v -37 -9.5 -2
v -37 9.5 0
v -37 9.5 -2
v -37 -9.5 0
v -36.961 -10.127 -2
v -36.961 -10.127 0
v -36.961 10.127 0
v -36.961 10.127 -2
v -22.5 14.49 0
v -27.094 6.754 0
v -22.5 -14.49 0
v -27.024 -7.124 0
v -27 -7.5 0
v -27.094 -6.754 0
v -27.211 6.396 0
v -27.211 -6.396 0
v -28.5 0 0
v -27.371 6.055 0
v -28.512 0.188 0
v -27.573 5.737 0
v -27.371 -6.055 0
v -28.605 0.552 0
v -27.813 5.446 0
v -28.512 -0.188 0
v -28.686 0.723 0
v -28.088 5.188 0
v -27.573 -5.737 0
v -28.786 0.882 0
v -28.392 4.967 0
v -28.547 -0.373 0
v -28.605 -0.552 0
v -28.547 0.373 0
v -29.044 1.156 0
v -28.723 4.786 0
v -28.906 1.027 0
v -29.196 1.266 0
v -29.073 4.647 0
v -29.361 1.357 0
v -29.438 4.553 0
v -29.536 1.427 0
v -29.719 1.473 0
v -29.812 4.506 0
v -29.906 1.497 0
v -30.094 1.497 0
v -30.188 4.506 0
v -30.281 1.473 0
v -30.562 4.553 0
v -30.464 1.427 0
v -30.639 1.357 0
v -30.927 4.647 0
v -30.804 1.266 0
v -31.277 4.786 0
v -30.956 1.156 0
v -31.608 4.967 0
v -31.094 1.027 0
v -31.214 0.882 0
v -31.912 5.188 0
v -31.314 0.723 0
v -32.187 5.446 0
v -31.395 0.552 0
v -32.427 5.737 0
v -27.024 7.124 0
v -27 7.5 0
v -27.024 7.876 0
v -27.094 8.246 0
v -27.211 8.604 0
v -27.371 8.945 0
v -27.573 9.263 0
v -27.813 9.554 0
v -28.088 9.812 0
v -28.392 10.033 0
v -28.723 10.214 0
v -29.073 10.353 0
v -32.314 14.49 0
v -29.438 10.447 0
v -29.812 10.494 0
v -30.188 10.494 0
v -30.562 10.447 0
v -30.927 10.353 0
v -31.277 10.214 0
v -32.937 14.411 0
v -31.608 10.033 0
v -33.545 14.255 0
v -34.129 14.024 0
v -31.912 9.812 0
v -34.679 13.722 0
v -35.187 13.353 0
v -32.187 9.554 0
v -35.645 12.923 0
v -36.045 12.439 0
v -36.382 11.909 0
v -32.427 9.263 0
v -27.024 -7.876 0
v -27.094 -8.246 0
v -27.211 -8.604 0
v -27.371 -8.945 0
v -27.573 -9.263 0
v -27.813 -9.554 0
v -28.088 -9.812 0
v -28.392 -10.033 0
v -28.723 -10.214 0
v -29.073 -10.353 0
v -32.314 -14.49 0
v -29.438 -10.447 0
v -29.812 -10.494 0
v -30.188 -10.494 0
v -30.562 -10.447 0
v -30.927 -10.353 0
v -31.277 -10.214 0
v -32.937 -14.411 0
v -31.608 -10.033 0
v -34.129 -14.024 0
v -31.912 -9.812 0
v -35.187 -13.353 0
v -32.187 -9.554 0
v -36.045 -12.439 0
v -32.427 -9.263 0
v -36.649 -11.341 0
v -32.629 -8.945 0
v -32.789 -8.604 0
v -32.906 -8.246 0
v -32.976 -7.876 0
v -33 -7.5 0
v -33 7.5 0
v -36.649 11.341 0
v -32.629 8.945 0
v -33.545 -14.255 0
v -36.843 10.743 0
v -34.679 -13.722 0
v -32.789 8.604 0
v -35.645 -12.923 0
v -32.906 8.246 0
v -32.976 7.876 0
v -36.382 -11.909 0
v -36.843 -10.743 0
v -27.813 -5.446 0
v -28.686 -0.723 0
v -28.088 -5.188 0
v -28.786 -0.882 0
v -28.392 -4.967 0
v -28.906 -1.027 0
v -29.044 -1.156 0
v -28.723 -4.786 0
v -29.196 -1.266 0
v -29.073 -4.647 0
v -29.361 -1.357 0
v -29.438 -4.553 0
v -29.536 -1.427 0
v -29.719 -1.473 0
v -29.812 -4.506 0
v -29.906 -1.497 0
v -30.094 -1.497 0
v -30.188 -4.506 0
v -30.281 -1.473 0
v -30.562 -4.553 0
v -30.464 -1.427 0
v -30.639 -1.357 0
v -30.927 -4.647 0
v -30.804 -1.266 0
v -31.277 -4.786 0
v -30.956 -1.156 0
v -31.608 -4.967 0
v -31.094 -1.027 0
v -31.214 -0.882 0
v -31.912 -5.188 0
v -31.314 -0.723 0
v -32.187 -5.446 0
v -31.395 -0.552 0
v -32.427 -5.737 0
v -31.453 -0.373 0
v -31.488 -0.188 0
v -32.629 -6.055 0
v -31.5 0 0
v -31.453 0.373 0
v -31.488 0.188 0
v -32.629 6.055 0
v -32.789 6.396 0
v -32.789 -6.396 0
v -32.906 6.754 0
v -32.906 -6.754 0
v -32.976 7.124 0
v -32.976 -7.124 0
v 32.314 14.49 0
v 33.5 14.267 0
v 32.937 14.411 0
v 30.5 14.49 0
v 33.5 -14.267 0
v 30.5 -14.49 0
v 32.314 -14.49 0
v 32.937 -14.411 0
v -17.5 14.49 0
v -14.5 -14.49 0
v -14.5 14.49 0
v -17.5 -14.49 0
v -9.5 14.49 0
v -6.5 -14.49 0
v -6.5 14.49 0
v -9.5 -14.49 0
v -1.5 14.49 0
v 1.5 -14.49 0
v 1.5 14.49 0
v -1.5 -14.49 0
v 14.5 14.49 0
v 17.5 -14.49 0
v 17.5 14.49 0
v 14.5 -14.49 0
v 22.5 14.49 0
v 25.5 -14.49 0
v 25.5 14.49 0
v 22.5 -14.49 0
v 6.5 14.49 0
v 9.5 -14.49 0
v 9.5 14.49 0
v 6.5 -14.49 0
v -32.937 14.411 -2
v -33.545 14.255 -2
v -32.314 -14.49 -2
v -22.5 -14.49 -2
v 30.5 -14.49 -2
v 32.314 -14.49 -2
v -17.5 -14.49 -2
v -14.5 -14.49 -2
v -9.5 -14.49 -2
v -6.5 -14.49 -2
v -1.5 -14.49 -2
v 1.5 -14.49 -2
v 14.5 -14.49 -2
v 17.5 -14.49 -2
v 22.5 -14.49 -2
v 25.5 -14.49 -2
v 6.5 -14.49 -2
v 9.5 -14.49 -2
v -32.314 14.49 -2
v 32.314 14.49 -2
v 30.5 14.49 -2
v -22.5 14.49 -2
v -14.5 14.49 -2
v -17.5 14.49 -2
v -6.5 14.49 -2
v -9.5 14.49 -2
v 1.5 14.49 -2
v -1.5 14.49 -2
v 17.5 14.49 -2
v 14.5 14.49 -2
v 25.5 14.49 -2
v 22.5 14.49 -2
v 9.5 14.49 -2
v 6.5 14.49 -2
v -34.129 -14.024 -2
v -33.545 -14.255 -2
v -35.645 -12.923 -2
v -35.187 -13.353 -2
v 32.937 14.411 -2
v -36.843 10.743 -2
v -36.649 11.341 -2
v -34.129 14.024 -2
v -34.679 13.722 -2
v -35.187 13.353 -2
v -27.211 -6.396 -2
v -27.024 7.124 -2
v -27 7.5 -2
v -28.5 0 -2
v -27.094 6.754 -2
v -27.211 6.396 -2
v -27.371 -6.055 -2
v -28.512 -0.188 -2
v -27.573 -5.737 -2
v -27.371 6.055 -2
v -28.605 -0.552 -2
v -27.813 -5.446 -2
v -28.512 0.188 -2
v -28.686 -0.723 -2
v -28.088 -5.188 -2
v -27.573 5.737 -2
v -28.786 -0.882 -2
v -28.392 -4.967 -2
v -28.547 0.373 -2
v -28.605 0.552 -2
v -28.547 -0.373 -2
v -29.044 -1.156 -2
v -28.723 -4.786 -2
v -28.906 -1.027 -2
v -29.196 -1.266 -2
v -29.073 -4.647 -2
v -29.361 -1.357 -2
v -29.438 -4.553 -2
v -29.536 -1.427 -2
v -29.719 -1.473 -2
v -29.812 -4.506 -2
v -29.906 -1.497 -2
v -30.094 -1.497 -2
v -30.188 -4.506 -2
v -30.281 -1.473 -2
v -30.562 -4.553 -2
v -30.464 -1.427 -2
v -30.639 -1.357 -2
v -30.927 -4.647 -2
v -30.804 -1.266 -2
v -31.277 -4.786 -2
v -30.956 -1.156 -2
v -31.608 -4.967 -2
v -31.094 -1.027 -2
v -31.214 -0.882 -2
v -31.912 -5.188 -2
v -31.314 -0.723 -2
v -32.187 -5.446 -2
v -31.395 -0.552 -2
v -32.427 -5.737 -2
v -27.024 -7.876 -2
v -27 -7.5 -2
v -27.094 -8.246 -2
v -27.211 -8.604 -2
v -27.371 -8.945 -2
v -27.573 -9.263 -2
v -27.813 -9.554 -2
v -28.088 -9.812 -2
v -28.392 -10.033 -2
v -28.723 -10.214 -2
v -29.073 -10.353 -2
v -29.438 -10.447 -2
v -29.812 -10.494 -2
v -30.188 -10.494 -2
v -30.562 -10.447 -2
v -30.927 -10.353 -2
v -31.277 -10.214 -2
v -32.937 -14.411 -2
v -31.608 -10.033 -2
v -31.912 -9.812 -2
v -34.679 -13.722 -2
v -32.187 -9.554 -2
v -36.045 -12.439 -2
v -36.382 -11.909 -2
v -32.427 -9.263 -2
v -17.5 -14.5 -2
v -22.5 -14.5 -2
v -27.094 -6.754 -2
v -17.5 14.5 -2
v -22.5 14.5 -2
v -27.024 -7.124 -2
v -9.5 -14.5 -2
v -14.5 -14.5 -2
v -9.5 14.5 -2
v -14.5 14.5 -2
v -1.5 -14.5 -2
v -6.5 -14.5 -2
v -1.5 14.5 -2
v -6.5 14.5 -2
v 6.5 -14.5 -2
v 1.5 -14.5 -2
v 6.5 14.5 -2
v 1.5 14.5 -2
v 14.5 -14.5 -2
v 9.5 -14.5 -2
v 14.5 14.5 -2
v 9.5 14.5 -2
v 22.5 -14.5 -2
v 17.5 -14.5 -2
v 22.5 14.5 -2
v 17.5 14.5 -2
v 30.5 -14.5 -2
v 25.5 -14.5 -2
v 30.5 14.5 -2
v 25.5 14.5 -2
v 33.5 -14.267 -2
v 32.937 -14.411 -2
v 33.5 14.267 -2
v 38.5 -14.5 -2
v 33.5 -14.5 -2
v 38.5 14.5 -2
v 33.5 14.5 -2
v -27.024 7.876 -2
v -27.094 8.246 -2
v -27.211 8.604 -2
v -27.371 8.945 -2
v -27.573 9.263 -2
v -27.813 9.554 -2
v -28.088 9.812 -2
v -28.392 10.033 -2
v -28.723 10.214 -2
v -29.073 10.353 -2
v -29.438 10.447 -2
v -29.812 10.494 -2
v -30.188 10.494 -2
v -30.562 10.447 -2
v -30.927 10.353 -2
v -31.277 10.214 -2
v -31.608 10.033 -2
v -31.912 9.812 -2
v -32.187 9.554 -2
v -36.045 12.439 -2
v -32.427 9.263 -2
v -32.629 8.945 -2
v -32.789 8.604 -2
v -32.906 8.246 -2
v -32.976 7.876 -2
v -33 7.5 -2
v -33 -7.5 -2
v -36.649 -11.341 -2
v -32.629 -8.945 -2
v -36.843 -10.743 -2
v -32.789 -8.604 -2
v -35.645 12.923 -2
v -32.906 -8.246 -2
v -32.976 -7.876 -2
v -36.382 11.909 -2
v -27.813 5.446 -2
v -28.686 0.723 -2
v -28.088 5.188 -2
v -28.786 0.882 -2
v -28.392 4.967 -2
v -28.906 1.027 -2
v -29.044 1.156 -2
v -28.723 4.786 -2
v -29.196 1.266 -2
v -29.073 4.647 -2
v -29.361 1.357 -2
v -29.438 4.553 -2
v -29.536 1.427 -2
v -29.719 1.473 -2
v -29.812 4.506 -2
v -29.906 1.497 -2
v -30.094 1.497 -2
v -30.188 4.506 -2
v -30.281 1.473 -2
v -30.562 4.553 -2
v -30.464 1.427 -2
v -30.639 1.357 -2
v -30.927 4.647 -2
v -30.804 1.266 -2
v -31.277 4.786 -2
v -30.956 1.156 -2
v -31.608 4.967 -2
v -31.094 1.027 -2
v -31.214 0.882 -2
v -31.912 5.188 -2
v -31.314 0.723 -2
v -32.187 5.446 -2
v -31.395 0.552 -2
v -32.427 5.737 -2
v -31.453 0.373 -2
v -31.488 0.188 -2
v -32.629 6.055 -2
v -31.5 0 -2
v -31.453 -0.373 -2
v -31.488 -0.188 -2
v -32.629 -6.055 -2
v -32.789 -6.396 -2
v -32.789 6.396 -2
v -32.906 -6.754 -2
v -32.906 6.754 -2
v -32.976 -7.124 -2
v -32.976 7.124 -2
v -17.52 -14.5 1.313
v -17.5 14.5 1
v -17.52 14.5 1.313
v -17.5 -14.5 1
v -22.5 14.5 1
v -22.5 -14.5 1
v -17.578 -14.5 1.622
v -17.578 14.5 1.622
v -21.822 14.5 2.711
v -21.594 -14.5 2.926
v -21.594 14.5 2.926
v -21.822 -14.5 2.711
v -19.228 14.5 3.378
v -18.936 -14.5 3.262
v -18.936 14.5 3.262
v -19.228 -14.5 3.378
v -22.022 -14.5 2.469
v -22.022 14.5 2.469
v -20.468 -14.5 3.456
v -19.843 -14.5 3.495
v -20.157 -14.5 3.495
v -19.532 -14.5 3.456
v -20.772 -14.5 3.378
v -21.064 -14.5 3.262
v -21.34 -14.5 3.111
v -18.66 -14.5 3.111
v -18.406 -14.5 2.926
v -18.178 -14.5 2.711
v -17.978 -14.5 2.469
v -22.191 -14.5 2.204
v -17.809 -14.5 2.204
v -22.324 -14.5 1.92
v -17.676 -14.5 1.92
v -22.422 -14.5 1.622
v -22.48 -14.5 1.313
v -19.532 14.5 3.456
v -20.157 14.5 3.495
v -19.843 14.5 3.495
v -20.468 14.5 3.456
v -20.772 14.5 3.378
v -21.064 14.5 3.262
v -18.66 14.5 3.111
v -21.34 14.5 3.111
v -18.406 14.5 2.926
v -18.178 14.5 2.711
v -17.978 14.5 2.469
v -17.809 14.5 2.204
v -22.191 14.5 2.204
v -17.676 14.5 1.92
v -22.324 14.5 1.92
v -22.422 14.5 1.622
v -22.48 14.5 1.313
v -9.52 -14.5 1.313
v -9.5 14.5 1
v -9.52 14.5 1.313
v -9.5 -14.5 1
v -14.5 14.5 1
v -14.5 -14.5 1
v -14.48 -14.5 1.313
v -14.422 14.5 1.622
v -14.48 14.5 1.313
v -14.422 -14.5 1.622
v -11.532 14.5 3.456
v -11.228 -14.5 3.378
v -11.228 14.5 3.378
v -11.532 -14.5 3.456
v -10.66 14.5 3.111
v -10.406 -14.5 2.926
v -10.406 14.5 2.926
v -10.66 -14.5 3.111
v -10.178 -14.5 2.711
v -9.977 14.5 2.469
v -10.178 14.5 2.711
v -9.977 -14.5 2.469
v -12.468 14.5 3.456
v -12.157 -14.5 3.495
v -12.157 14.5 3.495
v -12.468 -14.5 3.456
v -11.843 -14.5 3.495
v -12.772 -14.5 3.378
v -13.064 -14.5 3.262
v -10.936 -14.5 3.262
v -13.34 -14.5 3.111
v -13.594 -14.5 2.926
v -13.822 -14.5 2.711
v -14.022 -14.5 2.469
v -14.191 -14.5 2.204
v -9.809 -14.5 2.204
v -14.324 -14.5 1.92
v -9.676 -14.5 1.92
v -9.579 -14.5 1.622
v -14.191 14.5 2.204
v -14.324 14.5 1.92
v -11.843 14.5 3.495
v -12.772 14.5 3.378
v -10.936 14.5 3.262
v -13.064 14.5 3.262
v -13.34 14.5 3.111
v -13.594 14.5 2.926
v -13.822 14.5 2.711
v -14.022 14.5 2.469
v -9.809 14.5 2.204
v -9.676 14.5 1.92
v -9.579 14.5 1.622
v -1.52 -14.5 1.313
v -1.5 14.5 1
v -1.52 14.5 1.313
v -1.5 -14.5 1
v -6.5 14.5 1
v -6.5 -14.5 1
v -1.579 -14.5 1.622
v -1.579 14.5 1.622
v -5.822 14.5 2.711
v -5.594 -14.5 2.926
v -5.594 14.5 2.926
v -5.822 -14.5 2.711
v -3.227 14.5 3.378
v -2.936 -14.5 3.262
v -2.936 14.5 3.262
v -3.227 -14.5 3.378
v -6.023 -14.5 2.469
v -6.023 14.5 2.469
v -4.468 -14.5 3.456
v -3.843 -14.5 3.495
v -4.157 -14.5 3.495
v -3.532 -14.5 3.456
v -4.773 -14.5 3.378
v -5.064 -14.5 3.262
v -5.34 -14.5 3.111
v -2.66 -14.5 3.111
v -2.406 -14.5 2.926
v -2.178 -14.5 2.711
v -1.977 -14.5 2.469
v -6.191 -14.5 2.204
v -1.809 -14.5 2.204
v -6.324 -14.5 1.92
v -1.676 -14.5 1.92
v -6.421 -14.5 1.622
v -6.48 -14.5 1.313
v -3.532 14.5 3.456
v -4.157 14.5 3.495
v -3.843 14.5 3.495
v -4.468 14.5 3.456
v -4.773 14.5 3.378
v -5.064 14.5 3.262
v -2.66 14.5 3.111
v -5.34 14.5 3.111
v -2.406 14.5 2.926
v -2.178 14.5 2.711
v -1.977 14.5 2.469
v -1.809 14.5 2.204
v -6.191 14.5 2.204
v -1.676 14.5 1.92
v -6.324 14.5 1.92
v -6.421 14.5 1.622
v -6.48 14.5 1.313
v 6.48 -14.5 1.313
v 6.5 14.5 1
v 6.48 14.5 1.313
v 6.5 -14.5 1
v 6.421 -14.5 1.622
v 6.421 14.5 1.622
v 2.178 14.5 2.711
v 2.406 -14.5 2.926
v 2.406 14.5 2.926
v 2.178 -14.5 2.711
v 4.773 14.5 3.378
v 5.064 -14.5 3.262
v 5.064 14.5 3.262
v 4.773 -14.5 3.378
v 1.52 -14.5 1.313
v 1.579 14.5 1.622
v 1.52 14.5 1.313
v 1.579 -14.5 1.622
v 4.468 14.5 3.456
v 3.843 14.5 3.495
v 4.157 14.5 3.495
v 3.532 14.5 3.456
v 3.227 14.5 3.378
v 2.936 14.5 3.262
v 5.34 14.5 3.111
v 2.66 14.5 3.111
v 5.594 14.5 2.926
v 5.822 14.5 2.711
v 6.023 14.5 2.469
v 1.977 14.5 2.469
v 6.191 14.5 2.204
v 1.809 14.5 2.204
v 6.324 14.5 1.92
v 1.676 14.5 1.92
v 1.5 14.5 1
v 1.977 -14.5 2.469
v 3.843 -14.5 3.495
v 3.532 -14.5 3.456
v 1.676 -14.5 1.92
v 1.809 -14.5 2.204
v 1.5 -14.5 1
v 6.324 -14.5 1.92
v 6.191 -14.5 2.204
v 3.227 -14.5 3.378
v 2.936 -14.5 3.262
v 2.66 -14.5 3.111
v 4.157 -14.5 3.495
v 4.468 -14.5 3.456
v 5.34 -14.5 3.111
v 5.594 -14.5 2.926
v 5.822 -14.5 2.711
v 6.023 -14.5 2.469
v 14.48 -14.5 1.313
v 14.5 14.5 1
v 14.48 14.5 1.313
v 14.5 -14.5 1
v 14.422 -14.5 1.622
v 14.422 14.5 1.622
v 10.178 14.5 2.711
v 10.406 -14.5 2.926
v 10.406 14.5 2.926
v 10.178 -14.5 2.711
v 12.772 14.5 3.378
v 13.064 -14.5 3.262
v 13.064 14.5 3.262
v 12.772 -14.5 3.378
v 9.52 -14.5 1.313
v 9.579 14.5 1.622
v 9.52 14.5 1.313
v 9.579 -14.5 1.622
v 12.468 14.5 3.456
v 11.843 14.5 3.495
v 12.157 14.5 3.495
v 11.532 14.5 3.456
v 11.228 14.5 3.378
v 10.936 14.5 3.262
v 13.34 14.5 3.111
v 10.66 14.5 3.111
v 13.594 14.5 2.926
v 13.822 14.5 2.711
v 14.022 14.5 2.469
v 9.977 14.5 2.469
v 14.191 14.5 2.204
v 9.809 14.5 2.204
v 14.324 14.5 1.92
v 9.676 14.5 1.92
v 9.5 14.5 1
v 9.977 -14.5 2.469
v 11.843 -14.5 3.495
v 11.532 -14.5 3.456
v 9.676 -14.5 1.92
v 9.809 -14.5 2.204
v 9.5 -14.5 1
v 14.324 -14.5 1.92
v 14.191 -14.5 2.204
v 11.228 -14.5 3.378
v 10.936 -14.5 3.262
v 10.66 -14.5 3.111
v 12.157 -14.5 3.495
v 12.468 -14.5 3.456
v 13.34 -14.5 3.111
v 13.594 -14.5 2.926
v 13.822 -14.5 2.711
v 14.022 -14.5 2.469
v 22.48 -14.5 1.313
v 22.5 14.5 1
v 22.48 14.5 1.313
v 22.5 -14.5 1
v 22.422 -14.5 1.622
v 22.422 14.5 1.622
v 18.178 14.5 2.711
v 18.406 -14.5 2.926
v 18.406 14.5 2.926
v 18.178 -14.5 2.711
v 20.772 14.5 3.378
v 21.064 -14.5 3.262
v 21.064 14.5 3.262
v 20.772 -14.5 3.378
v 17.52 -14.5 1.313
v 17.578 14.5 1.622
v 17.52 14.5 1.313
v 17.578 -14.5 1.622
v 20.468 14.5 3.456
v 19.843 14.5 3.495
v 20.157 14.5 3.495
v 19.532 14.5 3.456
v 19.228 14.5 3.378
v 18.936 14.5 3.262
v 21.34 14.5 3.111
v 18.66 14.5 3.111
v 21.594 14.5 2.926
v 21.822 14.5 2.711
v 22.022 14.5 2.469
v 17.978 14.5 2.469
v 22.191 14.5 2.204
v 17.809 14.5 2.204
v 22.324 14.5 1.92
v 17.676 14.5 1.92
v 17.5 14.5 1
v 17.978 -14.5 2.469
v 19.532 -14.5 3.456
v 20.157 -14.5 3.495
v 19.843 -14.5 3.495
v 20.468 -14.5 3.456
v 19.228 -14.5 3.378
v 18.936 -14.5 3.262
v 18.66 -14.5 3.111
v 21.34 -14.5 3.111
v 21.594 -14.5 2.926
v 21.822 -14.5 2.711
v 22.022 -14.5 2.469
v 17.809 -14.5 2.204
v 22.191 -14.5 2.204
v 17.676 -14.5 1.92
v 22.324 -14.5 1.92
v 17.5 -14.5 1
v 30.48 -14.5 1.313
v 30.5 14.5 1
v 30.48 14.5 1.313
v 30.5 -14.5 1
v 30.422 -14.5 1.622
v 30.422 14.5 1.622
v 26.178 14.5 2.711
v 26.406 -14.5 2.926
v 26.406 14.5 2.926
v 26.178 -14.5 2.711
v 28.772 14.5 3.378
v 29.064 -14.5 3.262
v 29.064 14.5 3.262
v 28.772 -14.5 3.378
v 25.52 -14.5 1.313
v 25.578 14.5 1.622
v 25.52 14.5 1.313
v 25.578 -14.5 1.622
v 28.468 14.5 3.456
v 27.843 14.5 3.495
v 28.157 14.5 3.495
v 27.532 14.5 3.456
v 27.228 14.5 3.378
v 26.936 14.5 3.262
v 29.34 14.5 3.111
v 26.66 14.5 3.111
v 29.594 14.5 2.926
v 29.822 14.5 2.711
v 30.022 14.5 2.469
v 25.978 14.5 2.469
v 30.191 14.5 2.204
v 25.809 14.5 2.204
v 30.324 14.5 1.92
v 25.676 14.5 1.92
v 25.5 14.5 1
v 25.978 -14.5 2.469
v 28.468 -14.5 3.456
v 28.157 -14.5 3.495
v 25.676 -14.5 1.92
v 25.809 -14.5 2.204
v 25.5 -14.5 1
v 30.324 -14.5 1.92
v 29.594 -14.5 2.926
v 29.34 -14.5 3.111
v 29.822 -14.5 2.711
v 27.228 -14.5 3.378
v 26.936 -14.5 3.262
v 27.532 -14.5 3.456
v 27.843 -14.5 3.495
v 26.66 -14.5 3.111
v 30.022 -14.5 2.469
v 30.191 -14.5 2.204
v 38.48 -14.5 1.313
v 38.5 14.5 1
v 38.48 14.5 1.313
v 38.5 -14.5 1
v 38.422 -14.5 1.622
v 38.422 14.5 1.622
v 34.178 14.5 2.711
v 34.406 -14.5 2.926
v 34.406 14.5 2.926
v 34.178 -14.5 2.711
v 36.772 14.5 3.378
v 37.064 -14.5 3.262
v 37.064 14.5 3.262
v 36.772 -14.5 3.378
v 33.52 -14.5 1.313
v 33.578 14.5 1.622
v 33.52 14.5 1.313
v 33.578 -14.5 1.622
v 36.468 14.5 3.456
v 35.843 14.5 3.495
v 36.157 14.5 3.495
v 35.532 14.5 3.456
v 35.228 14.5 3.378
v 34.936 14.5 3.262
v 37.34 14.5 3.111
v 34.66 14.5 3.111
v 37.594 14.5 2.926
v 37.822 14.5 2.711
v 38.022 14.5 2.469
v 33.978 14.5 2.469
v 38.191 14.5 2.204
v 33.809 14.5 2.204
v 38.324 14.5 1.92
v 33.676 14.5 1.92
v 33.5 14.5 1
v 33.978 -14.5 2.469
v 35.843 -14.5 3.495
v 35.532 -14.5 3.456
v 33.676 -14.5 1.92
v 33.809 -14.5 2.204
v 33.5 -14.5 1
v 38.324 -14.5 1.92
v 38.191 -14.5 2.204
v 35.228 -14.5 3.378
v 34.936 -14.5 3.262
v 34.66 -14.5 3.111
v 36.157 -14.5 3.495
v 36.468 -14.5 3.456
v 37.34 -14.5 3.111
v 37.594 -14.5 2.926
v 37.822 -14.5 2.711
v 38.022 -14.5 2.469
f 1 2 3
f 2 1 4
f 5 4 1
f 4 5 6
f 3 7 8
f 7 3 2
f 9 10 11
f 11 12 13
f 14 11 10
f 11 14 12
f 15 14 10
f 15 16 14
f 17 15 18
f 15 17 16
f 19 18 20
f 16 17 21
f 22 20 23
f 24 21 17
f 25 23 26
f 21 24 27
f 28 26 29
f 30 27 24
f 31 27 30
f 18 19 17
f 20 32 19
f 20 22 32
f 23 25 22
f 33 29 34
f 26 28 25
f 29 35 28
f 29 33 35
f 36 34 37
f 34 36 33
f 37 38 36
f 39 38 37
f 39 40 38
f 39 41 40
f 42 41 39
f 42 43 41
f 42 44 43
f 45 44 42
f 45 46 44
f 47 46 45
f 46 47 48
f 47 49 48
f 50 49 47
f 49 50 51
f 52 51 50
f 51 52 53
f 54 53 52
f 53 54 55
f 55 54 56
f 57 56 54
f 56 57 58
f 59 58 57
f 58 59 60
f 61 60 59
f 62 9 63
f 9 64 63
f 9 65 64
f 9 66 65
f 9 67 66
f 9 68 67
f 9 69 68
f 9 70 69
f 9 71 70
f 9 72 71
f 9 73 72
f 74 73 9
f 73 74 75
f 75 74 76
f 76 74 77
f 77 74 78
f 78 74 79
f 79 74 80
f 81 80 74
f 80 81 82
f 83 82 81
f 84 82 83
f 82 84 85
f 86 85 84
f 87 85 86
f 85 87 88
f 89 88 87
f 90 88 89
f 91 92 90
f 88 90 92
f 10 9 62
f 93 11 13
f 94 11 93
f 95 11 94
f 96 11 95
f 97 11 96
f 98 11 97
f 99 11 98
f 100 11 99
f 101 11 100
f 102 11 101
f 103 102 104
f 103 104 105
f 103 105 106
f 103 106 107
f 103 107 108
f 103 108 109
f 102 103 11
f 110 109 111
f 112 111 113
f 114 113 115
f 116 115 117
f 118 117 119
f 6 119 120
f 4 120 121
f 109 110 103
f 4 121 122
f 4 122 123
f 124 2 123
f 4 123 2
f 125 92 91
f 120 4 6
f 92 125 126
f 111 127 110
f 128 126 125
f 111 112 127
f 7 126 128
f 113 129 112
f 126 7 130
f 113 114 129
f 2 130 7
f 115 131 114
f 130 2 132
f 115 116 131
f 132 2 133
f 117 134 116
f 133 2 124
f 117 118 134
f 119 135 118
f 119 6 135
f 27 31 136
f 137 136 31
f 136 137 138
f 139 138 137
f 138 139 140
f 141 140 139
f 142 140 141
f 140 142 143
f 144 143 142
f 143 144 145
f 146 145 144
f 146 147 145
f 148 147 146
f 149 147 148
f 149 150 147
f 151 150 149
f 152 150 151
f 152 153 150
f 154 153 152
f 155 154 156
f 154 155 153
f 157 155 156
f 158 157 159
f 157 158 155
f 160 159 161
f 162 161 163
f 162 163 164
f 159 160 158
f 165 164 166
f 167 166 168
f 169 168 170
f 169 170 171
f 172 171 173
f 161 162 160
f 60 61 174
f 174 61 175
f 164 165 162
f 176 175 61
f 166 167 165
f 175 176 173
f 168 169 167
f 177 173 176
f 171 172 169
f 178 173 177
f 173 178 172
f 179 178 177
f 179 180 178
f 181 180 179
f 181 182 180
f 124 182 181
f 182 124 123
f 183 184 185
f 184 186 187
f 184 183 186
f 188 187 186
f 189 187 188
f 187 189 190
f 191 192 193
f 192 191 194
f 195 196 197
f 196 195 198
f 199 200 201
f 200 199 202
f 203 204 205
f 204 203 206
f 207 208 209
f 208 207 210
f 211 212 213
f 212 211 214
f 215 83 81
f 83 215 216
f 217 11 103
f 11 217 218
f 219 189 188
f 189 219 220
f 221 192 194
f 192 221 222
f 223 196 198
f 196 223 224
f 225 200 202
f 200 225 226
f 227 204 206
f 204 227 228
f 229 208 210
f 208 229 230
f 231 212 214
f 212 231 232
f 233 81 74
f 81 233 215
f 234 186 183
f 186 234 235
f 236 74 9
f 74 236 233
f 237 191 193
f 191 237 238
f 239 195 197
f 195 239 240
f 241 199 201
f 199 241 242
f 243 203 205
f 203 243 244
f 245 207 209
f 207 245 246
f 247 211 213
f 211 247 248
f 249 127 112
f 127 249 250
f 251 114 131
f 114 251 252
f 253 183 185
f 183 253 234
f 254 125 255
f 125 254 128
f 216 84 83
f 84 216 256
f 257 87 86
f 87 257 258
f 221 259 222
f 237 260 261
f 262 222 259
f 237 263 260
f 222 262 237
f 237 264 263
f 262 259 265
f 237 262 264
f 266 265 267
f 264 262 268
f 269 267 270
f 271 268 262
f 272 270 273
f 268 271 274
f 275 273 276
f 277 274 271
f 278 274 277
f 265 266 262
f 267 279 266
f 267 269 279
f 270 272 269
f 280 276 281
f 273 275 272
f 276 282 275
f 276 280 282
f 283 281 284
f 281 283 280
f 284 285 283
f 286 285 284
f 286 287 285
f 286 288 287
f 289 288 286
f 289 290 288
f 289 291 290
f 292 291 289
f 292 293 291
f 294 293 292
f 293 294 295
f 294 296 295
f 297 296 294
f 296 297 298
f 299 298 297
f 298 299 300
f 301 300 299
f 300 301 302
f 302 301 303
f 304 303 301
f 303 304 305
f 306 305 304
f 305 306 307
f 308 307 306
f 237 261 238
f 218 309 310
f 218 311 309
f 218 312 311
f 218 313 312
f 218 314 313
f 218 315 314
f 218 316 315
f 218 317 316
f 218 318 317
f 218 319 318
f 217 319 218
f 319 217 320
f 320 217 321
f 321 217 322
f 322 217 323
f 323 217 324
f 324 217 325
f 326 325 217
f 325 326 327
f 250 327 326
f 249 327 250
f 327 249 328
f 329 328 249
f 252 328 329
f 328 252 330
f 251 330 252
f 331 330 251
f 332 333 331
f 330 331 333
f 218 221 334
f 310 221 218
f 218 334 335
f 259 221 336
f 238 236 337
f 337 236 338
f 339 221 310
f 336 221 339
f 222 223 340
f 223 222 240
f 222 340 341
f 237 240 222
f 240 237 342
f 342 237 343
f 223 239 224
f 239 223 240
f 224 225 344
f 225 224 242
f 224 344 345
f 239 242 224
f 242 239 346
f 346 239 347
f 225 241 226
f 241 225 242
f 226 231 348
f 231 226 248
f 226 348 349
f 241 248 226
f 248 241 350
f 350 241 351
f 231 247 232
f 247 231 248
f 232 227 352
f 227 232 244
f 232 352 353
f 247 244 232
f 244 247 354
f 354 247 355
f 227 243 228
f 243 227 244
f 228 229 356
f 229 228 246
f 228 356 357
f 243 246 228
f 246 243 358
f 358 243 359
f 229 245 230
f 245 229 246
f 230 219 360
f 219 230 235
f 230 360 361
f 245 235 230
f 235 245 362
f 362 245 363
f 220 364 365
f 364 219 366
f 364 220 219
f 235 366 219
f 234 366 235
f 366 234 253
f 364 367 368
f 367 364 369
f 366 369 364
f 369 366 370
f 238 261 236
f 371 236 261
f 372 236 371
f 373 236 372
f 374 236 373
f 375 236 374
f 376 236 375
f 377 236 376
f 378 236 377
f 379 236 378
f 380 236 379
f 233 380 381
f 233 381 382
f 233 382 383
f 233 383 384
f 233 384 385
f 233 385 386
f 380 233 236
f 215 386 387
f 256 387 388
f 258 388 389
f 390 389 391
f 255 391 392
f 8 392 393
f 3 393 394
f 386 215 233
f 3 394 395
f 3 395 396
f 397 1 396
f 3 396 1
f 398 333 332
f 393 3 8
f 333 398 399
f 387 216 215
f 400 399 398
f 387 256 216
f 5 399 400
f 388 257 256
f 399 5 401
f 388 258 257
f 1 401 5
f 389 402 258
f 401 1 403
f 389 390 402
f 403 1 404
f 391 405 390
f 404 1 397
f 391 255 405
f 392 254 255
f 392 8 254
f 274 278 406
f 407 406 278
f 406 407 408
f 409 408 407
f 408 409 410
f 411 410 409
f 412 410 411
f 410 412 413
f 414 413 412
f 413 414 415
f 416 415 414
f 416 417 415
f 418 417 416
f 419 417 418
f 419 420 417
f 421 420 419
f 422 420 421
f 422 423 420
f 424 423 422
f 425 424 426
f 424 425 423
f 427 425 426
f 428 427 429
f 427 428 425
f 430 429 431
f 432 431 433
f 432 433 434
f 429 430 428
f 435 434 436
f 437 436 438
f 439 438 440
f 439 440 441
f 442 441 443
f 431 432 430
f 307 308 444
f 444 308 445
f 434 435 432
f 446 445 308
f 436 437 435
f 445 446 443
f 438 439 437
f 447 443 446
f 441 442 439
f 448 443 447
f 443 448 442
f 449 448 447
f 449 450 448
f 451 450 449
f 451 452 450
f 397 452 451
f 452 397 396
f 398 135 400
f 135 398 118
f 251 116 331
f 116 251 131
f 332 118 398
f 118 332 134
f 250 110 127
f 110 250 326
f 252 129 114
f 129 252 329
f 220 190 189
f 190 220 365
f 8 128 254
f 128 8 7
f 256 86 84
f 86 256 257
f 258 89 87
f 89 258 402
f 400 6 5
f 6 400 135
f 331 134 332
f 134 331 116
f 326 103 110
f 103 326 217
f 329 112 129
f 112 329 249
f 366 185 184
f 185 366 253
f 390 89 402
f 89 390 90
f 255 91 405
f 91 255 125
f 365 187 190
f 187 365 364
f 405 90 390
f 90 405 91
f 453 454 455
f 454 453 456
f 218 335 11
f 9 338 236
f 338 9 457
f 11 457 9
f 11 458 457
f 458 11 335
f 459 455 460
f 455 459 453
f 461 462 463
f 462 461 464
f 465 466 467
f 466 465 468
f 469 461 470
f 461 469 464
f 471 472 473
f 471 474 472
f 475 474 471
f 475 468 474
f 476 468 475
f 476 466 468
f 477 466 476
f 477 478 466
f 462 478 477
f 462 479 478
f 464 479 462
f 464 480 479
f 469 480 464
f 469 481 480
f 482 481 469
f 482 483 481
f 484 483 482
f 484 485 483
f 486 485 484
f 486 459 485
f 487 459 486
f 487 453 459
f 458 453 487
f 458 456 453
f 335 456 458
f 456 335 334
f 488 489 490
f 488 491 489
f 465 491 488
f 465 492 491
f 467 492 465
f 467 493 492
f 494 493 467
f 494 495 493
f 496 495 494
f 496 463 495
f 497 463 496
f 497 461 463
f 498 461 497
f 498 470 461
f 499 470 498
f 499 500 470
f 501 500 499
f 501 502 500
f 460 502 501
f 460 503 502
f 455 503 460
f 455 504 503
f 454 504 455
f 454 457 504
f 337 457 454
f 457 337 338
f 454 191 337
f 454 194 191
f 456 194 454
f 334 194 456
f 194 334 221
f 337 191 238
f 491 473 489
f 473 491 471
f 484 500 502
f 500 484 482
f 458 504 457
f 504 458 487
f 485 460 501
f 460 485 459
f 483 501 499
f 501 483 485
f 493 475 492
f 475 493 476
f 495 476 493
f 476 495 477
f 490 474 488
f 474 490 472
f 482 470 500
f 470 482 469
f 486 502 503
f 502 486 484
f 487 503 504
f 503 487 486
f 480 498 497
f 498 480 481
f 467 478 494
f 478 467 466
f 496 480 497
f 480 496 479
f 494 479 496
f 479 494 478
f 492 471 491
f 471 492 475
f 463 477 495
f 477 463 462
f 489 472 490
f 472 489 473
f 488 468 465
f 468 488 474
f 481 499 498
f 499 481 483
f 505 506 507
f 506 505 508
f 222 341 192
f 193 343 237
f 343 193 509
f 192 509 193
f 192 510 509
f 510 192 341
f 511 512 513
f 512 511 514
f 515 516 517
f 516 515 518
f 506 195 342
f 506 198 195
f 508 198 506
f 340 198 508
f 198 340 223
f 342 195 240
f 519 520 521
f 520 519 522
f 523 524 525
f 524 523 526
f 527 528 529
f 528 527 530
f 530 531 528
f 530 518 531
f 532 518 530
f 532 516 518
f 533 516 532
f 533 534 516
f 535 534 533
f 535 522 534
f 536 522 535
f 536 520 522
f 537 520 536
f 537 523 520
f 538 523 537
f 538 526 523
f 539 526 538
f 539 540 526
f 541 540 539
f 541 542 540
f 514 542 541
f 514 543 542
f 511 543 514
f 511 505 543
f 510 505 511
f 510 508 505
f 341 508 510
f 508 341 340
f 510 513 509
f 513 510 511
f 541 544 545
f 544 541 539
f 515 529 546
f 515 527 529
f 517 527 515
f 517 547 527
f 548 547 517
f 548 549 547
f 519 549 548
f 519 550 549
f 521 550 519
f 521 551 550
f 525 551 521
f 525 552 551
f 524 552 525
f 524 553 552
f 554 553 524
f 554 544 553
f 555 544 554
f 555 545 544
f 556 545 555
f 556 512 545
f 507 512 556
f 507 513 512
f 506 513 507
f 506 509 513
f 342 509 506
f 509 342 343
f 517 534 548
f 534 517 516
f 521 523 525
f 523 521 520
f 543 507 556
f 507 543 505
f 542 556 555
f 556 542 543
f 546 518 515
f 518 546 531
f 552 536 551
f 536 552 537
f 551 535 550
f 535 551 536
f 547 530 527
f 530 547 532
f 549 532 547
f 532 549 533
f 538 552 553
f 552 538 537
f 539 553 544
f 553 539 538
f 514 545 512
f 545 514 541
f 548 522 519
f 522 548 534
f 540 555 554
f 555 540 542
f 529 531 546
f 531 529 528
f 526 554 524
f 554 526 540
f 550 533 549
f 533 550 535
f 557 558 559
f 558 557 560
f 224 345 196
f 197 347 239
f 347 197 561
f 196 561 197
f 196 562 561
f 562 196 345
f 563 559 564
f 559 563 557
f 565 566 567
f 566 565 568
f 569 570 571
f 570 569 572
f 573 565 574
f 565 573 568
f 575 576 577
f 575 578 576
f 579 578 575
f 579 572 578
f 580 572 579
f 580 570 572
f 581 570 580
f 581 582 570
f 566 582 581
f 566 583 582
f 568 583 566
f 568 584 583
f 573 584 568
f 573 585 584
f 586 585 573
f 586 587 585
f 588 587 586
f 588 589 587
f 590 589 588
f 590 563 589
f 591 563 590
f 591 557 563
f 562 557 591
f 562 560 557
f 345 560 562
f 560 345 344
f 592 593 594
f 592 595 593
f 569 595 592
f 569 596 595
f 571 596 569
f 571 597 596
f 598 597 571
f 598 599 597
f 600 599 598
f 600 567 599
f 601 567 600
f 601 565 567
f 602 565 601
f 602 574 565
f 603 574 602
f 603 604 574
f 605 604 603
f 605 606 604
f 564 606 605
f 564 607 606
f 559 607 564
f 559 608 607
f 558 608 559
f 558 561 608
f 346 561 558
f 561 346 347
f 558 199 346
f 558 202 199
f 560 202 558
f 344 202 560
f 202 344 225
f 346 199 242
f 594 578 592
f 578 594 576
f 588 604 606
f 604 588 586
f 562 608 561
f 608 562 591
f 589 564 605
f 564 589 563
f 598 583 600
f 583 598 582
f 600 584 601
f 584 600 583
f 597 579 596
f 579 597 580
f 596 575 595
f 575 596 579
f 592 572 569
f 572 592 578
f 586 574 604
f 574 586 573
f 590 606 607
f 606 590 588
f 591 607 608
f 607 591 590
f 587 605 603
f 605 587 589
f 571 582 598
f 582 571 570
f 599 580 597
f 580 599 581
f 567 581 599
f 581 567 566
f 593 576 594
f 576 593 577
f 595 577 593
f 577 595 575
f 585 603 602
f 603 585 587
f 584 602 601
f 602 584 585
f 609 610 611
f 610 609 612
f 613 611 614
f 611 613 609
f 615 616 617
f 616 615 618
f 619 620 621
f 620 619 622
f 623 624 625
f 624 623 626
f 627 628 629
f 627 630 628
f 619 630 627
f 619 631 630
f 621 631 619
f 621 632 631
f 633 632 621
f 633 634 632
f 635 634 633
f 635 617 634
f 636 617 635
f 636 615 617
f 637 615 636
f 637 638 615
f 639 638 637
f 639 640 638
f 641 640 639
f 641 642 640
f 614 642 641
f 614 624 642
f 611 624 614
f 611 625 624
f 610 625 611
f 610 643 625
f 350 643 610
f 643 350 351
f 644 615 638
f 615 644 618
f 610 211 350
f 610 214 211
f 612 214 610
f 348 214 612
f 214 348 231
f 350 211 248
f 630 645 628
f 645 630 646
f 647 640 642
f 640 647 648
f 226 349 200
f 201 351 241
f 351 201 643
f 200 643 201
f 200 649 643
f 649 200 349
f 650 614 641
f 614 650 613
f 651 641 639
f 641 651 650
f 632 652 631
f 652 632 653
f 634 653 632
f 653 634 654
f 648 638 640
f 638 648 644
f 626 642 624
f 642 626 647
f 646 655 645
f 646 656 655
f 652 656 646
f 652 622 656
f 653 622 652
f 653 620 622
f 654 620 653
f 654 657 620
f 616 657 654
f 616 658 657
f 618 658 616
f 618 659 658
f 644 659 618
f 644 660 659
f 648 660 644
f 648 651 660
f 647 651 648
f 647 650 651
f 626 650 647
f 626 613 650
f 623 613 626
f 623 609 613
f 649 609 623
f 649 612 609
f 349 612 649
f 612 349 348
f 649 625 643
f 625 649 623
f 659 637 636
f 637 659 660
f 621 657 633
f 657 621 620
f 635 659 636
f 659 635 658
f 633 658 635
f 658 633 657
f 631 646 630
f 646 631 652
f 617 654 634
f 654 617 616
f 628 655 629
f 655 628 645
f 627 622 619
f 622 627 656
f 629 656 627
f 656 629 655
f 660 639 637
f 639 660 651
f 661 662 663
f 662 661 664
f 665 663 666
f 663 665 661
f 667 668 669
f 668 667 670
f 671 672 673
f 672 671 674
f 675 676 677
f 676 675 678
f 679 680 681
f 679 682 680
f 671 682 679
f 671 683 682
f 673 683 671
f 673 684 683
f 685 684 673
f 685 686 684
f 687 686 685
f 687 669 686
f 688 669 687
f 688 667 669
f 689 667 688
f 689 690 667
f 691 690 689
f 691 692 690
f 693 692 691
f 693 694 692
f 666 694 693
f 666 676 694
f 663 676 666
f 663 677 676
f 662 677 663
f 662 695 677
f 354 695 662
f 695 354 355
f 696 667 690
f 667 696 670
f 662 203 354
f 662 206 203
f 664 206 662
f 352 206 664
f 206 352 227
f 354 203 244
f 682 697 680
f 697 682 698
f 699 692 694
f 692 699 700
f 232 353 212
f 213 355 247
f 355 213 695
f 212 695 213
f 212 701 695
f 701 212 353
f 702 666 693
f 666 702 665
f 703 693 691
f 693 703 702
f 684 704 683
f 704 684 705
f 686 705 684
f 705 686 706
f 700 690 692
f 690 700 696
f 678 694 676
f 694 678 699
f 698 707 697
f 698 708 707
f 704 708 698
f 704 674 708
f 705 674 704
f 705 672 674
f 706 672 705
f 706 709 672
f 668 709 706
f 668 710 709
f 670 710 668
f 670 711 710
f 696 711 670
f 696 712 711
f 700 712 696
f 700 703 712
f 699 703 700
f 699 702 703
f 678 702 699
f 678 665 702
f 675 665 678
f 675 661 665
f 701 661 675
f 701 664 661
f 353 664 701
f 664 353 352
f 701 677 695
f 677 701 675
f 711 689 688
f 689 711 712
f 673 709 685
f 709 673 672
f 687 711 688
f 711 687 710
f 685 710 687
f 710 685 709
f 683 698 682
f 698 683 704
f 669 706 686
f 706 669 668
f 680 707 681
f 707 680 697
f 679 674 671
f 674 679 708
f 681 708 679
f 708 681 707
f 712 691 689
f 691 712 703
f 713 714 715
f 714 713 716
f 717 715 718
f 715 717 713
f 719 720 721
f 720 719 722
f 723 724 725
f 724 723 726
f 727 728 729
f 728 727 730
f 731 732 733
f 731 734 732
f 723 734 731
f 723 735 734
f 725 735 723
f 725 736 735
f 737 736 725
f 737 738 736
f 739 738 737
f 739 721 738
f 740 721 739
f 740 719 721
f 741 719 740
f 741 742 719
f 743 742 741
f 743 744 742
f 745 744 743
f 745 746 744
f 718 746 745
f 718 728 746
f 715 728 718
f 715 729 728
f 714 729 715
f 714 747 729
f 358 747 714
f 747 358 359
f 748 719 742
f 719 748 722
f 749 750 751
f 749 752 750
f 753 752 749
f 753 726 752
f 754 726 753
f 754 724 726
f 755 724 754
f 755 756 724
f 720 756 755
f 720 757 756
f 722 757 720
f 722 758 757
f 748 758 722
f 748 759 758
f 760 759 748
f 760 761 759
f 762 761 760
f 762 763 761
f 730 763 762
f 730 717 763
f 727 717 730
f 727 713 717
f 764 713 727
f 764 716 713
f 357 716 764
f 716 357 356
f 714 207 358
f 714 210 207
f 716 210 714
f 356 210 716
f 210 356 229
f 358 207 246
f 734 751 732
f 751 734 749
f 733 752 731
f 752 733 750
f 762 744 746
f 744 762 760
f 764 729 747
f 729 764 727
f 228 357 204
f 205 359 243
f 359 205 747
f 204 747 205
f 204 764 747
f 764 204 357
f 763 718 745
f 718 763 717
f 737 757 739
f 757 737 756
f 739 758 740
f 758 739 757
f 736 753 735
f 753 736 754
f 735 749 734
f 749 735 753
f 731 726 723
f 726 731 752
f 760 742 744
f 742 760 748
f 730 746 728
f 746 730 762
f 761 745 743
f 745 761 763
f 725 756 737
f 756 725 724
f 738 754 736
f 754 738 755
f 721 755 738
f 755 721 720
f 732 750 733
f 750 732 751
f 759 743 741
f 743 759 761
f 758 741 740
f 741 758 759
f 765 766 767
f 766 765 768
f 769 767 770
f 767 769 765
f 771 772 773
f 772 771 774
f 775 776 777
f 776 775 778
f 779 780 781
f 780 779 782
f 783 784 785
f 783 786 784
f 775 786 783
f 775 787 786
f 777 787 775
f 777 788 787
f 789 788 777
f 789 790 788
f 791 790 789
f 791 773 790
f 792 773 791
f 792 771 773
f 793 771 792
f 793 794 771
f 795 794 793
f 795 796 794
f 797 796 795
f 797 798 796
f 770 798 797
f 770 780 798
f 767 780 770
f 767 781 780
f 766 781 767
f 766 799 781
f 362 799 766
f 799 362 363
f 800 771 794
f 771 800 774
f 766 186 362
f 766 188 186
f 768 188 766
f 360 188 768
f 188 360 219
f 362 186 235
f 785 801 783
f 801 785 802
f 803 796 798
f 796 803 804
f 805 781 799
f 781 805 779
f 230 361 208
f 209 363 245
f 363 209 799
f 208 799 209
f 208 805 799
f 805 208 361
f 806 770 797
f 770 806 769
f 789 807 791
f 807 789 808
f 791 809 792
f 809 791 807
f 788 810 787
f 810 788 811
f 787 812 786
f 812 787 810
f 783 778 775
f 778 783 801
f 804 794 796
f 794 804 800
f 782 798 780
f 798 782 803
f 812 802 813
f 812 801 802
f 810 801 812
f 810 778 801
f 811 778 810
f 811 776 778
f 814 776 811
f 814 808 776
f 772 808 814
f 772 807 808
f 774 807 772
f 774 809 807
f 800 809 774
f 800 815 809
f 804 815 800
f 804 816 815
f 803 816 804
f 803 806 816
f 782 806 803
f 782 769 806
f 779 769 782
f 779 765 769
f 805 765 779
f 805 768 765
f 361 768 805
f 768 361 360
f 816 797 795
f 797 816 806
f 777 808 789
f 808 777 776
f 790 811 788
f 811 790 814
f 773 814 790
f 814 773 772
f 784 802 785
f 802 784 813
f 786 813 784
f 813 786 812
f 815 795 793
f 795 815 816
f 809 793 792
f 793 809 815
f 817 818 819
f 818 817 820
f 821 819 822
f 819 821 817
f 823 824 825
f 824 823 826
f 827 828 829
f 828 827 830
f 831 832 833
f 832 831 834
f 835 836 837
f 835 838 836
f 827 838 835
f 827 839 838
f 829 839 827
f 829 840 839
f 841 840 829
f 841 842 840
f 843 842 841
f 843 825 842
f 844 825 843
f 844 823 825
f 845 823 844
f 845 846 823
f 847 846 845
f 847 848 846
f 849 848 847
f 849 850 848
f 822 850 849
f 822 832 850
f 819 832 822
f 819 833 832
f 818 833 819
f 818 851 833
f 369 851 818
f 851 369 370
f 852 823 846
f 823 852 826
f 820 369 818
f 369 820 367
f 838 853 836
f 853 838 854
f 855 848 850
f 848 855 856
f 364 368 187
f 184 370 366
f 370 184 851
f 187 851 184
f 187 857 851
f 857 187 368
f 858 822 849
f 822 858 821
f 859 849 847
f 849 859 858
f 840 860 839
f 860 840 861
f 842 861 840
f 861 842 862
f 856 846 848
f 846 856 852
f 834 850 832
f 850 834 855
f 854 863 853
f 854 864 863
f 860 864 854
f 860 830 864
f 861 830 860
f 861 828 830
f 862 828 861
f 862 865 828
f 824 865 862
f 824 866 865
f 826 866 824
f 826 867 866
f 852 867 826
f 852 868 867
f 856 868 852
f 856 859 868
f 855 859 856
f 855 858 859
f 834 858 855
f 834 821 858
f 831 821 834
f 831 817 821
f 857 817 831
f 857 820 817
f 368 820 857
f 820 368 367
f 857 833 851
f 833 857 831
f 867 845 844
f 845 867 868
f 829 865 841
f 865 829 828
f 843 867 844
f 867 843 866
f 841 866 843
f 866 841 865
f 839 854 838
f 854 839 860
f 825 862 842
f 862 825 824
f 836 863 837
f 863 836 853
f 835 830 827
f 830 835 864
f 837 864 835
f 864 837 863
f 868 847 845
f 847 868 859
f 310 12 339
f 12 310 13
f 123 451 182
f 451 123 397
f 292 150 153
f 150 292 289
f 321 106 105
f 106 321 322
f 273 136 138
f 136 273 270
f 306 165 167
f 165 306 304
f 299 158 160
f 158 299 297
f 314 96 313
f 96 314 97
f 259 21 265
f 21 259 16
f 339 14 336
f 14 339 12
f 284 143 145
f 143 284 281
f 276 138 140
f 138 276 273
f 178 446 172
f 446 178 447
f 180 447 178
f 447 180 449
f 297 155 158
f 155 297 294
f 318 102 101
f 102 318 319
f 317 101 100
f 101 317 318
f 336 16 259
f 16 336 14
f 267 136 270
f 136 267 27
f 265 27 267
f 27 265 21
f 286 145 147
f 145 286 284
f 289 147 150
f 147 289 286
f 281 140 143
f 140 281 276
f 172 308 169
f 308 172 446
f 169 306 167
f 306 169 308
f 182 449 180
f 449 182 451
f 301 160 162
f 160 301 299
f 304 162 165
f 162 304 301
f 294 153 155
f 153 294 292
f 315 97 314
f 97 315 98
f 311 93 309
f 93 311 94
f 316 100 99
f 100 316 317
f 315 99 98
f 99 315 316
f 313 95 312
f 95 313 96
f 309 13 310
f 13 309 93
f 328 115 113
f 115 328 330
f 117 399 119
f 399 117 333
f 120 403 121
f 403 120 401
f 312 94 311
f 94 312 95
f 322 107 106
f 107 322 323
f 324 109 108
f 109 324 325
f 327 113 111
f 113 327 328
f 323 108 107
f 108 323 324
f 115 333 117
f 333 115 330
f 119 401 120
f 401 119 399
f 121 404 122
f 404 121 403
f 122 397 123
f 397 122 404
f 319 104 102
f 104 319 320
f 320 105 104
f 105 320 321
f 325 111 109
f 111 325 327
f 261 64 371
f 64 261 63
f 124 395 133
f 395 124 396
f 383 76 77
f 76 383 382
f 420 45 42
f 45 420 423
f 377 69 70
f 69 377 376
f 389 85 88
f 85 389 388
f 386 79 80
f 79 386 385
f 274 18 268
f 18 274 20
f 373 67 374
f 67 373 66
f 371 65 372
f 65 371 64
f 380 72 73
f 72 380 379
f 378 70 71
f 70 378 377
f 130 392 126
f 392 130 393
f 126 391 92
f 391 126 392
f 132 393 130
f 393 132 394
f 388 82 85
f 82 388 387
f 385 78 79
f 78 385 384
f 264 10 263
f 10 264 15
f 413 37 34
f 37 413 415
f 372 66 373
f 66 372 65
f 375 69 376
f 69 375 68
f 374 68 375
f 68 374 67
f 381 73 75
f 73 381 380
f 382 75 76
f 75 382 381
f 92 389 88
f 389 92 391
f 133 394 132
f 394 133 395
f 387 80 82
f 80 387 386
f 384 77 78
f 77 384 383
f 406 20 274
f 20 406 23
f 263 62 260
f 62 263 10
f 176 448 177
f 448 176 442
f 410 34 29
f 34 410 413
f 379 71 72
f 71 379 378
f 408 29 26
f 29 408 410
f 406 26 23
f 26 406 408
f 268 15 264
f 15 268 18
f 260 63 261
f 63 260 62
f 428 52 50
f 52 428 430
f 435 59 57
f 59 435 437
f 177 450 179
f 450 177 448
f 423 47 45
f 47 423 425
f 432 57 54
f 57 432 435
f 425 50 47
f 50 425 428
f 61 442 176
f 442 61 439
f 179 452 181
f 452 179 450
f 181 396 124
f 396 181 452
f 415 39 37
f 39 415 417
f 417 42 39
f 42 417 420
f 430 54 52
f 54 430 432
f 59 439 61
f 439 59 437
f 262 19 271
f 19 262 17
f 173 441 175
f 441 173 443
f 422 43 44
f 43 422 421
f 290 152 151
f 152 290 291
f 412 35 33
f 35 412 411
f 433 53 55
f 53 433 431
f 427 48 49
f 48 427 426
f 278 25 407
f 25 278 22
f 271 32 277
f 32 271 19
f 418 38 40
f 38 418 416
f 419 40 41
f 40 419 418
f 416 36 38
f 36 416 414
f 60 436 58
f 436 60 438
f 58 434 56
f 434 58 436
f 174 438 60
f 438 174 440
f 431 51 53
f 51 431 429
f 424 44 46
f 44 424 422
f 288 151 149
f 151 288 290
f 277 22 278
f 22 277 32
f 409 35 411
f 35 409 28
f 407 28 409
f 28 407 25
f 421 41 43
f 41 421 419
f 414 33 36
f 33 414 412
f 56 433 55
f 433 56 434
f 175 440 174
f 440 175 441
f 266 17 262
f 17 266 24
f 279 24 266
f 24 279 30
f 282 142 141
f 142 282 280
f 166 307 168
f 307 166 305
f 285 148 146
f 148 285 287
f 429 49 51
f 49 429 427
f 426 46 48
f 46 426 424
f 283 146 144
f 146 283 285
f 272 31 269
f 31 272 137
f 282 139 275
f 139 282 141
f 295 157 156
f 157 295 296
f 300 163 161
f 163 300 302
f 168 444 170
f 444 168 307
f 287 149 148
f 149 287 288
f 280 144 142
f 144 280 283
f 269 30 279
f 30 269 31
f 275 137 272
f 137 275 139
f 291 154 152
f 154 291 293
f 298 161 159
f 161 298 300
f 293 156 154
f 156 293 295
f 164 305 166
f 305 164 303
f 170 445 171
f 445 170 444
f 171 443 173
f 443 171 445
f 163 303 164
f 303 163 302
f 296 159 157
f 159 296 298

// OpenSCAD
$fn = 50;


difference() {
	union() {
		translate(v = [0, 0, -2]) {
			hull() {
				translate(v = [-32.0000000000, 9.5000000000, 0]) {
					cylinder(h = 2, r = 5);
				}
				translate(v = [32.0000000000, 9.5000000000, 0]) {
					cylinder(h = 2, r = 5);
				}
				translate(v = [-32.0000000000, -9.5000000000, 0]) {
					cylinder(h = 2, r = 5);
				}
				translate(v = [32.0000000000, -9.5000000000, 0]) {
					cylinder(h = 2, r = 5);
				}
			}
		}
		translate(v = [-20.0000000000, 14.5000000000, -1.5000000000]) {
			rotate(a = [90, 0, 0]) {
				hull() {
					translate(v = [-0.0000000000, 2.5000000000, 0]) {
						cylinder(h = 29, r = 2.5000000000);
					}
					translate(v = [0.0000000000, 2.5000000000, 0]) {
						cylinder(h = 29, r = 2.5000000000);
					}
					translate(v = [-0.0000000000, -2.5000000000, 0]) {
						cylinder(h = 29, r = 2.5000000000);
					}
					translate(v = [0.0000000000, -2.5000000000, 0]) {
						cylinder(h = 29, r = 2.5000000000);
					}
				}
			}
		}
		translate(v = [-12.0000000000, 14.5000000000, -1.5000000000]) {
			rotate(a = [90, 0, 0]) {
				hull() {
					translate(v = [-0.0000000000, 2.5000000000, 0]) {
						cylinder(h = 29, r = 2.5000000000);
					}
					translate(v = [0.0000000000, 2.5000000000, 0]) {
						cylinder(h = 29, r = 2.5000000000);
					}
					translate(v = [-0.0000000000, -2.5000000000, 0]) {
						cylinder(h = 29, r = 2.5000000000);
					}
					translate(v = [0.0000000000, -2.5000000000, 0]) {
						cylinder(h = 29, r = 2.5000000000);
					}
				}
			}
		}
		translate(v = [-4.0000000000, 14.5000000000, -1.5000000000]) {
			rotate(a = [90, 0, 0]) {
				hull() {
					translate(v = [-0.0000000000, 2.5000000000, 0]) {
						cylinder(h = 29, r = 2.5000000000);
					}
					translate(v = [0.0000000000, 2.5000000000, 0]) {
						cylinder(h = 29, r = 2.5000000000);
					}
					translate(v = [-0.0000000000, -2.5000000000, 0]) {
						cylinder(h = 29, r = 2.5000000000);
					}
					translate(v = [0.0000000000, -2.5000000000, 0]) {
						cylinder(h = 29, r = 2.5000000000);
					}
				}
			}
		}
		translate(v = [4.0000000000, 14.5000000000, -1.5000000000]) {
			rotate(a = [90, 0, 0]) {
				hull() {
					translate(v = [-0.0000000000, 2.5000000000, 0]) {
						cylinder(h = 29, r = 2.5000000000);
					}
					translate(v = [0.0000000000, 2.5000000000, 0]) {
						cylinder(h = 29, r = 2.5000000000);
					}
					translate(v = [-0.0000000000, -2.5000000000, 0]) {
						cylinder(h = 29, r = 2.5000000000);
					}
					translate(v = [0.0000000000, -2.5000000000, 0]) {
						cylinder(h = 29, r = 2.5000000000);
					}
				}
			}
		}
		translate(v = [12.0000000000, 14.5000000000, -1.5000000000]) {
			rotate(a = [90, 0, 0]) {
				hull() {
					translate(v = [-0.0000000000, 2.5000000000, 0]) {
						cylinder(h = 29, r = 2.5000000000);
					}
					translate(v = [0.0000000000, 2.5000000000, 0]) {
						cylinder(h = 29, r = 2.5000000000);
					}
					translate(v = [-0.0000000000, -2.5000000000, 0]) {
						cylinder(h = 29, r = 2.5000000000);
					}
					translate(v = [0.0000000000, -2.5000000000, 0]) {
						cylinder(h = 29, r = 2.5000000000);
					}
				}
			}
		}
		translate(v = [20.0000000000, 14.5000000000, -1.5000000000]) {
			rotate(a = [90, 0, 0]) {
				hull() {
					translate(v = [-0.0000000000, 2.5000000000, 0]) {
						cylinder(h = 29, r = 2.5000000000);
					}
					translate(v = [0.0000000000, 2.5000000000, 0]) {
						cylinder(h = 29, r = 2.5000000000);
					}
					translate(v = [-0.0000000000, -2.5000000000, 0]) {
						cylinder(h = 29, r = 2.5000000000);
					}
					translate(v = [0.0000000000, -2.5000000000, 0]) {
						cylinder(h = 29, r = 2.5000000000);
					}
				}
			}
		}
		translate(v = [28.0000000000, 14.5000000000, -1.5000000000]) {
			rotate(a = [90, 0, 0]) {
				hull() {
					translate(v = [-0.0000000000, 2.5000000000, 0]) {
						cylinder(h = 29, r = 2.5000000000);
					}
					translate(v = [0.0000000000, 2.5000000000, 0]) {
						cylinder(h = 29, r = 2.5000000000);
					}
					translate(v = [-0.0000000000, -2.5000000000, 0]) {
						cylinder(h = 29, r = 2.5000000000);
					}
					translate(v = [0.0000000000, -2.5000000000, 0]) {
						cylinder(h = 29, r = 2.5000000000);
					}
				}
			}
		}
		translate(v = [36.0000000000, 14.5000000000, -1.5000000000]) {
			rotate(a = [90, 0, 0]) {
				hull() {
					translate(v = [-0.0000000000, 2.5000000000, 0]) {
						cylinder(h = 29, r = 2.5000000000);
					}
					translate(v = [0.0000000000, 2.5000000000, 0]) {
						cylinder(h = 29, r = 2.5000000000);
					}
					translate(v = [-0.0000000000, -2.5000000000, 0]) {
						cylinder(h = 29, r = 2.5000000000);
					}
					translate(v = [0.0000000000, -2.5000000000, 0]) {
						cylinder(h = 29, r = 2.5000000000);
					}
				}
			}
		}
	}
	union() {
		translate(v = [-250.0000000000, -250.0000000000, -502]) {
			cube(size = [500, 500, 500]);
		}
		translate(v = [-250.0000000000, -250.0000000000, -502]) {
			cube(size = [500, 500, 500]);
		}
		translate(v = [-250.0000000000, -250.0000000000, -502]) {
			cube(size = [500, 500, 500]);
		}
		translate(v = [-30.0000000000, -7.5000000000, -100.0000000000]) {
			cylinder(h = 200, r = 3.0000000000);
		}
		translate(v = [-30.0000000000, 7.5000000000, -100.0000000000]) {
			cylinder(h = 200, r = 3.0000000000);
		}
		translate(v = [-30.0000000000, -7.5000000000, -100.0000000000]) {
			cylinder(h = 200, r = 1.5000000000);
		}
		translate(v = [-30.0000000000, 0.0000000000, -100.0000000000]) {
			cylinder(h = 200, r = 1.5000000000);
		}
		translate(v = [-30.0000000000, 7.5000000000, -100.0000000000]) {
			cylinder(h = 200, r = 1.5000000000);
		}
		translate(v = [-30.0000000000, -7.5000000000, -100.0000000000]) {
			cylinder(h = 200, r = 1.5000000000);
		}
		translate(v = [-30.0000000000, 0.0000000000, -100.0000000000]) {
			cylinder(h = 200, r = 1.5000000000);
		}
		translate(v = [-30.0000000000, 7.5000000000, -100.0000000000]) {
			cylinder(h = 200, r = 1.5000000000);
		}
		translate(v = [-30.0000000000, -7.5000000000, -100.0000000000]) {
			cylinder(h = 200, r = 1.5000000000);
		}
		translate(v = [-30.0000000000, 0.0000000000, -100.0000000000]) {
			cylinder(h = 200, r = 1.5000000000);
		}
		translate(v = [-30.0000000000, 7.5000000000, -100.0000000000]) {
			cylinder(h = 200, r = 1.5000000000);
		}
	}
}
